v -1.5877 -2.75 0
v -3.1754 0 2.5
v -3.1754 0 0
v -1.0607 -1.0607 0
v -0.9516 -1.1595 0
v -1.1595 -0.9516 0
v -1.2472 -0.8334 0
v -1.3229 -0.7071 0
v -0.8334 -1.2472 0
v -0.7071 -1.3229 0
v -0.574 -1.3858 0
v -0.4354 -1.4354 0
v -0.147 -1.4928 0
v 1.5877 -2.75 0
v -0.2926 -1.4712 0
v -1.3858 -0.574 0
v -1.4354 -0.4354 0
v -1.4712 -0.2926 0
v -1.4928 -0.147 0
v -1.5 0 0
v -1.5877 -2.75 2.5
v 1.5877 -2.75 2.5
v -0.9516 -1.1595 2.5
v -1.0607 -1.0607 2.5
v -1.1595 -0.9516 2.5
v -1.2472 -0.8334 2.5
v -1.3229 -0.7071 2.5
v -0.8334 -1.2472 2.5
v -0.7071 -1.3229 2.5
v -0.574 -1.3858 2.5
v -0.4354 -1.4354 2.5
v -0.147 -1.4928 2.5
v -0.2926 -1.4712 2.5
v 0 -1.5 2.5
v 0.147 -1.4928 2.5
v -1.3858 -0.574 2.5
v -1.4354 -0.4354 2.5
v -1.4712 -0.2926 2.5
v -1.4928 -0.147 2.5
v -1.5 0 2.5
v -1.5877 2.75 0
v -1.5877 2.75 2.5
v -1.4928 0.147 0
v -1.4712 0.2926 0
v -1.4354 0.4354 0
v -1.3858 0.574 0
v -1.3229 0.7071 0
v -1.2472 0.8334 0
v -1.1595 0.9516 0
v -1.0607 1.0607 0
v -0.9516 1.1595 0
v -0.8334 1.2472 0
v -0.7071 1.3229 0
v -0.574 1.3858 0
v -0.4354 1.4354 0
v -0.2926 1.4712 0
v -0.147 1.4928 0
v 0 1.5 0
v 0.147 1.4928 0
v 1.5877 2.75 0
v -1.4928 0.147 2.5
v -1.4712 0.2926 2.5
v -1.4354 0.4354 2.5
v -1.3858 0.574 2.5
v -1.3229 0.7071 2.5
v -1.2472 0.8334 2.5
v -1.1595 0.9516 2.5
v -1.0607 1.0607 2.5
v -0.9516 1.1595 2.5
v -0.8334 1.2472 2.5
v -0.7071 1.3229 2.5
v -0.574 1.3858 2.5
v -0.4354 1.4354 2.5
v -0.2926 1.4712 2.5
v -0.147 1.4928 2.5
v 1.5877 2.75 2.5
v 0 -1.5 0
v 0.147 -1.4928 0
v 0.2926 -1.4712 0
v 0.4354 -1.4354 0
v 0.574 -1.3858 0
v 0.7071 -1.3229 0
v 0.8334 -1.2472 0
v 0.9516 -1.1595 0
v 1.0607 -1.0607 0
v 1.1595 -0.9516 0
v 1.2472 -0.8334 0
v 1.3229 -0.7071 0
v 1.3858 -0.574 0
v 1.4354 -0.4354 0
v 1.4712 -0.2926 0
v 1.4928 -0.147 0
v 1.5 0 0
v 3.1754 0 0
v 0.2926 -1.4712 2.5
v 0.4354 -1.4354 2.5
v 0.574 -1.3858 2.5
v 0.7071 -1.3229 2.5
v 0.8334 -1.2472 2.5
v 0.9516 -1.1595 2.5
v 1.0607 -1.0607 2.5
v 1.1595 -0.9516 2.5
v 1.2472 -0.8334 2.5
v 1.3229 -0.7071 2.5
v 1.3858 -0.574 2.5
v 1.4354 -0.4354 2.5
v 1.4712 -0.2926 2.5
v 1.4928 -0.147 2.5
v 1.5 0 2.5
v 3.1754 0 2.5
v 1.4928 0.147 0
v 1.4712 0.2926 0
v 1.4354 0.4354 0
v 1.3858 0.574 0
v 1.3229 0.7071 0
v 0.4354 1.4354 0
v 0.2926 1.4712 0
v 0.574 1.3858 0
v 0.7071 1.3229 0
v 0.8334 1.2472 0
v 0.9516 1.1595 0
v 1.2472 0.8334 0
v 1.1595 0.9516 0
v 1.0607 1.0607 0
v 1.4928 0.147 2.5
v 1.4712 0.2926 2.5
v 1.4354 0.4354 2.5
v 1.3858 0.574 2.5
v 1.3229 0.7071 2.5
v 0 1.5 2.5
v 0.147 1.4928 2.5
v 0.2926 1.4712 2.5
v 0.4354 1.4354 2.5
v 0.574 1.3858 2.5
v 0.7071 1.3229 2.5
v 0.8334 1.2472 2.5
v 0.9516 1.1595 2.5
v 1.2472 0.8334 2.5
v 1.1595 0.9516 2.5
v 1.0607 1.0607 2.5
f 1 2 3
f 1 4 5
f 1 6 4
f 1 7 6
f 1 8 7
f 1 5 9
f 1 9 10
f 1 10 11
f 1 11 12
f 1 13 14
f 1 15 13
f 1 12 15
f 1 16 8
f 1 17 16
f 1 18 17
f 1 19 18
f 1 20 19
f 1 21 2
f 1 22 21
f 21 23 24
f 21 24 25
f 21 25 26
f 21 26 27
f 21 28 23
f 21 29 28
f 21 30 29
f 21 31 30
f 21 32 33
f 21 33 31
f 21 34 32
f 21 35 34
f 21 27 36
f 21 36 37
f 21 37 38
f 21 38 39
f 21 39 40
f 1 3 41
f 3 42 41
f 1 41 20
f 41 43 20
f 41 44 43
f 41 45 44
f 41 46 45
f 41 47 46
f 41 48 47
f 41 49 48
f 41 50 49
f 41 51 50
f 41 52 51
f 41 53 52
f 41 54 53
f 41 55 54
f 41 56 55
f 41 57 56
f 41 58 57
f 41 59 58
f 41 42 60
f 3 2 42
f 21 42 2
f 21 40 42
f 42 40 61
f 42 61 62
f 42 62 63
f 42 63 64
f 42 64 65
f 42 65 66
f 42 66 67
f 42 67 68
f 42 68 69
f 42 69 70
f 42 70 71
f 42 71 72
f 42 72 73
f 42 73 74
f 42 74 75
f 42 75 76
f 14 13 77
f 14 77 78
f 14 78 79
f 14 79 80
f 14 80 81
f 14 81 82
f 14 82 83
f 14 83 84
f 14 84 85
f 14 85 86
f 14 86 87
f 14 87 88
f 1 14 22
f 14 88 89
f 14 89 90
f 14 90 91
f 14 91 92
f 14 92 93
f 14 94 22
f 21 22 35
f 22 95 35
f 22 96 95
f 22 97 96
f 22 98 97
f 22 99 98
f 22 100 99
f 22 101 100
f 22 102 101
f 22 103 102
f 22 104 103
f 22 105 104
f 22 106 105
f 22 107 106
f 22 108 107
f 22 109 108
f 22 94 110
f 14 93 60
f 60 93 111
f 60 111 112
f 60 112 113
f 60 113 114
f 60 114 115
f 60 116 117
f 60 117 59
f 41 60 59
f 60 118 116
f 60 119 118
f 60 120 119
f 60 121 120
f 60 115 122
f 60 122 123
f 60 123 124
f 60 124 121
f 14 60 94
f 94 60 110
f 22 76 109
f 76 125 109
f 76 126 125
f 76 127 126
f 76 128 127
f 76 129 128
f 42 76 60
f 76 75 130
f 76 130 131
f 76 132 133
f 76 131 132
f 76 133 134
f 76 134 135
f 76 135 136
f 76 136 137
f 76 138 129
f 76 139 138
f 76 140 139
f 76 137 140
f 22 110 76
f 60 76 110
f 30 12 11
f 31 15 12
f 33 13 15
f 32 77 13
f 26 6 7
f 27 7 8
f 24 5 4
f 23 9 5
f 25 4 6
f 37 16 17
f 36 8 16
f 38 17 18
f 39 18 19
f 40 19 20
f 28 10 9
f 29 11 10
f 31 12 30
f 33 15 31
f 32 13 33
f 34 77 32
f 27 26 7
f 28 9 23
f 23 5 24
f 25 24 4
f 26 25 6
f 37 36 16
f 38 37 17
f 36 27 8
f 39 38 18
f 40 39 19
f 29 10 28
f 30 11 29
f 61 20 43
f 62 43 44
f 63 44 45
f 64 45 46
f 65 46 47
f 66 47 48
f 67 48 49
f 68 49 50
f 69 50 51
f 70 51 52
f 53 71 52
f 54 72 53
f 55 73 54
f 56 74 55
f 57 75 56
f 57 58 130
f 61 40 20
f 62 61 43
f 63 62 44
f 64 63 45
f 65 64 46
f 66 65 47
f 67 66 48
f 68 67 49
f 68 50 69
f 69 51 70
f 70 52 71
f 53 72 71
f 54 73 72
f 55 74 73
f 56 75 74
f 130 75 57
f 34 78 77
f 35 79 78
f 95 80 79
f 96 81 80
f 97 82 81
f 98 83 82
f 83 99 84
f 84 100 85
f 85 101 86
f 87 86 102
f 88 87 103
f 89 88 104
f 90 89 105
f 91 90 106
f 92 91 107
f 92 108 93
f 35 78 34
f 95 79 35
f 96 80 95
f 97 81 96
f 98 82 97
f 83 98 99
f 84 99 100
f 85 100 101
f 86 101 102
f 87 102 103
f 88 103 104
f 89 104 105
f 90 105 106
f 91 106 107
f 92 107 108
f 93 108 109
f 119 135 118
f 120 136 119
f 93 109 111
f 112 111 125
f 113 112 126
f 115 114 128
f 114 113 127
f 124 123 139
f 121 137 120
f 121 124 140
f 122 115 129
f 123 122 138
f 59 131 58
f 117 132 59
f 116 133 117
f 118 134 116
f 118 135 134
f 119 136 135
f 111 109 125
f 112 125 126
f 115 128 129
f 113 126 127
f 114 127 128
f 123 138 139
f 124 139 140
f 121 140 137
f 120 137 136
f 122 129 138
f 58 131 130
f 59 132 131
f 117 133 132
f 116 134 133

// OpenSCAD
$fn=64; difference() { cylinder(h=2.5,r=5.5/sqrt(3),$fn=6); translate([0,0,-.01]) cylinder(h=2.52,r=1.5); }
